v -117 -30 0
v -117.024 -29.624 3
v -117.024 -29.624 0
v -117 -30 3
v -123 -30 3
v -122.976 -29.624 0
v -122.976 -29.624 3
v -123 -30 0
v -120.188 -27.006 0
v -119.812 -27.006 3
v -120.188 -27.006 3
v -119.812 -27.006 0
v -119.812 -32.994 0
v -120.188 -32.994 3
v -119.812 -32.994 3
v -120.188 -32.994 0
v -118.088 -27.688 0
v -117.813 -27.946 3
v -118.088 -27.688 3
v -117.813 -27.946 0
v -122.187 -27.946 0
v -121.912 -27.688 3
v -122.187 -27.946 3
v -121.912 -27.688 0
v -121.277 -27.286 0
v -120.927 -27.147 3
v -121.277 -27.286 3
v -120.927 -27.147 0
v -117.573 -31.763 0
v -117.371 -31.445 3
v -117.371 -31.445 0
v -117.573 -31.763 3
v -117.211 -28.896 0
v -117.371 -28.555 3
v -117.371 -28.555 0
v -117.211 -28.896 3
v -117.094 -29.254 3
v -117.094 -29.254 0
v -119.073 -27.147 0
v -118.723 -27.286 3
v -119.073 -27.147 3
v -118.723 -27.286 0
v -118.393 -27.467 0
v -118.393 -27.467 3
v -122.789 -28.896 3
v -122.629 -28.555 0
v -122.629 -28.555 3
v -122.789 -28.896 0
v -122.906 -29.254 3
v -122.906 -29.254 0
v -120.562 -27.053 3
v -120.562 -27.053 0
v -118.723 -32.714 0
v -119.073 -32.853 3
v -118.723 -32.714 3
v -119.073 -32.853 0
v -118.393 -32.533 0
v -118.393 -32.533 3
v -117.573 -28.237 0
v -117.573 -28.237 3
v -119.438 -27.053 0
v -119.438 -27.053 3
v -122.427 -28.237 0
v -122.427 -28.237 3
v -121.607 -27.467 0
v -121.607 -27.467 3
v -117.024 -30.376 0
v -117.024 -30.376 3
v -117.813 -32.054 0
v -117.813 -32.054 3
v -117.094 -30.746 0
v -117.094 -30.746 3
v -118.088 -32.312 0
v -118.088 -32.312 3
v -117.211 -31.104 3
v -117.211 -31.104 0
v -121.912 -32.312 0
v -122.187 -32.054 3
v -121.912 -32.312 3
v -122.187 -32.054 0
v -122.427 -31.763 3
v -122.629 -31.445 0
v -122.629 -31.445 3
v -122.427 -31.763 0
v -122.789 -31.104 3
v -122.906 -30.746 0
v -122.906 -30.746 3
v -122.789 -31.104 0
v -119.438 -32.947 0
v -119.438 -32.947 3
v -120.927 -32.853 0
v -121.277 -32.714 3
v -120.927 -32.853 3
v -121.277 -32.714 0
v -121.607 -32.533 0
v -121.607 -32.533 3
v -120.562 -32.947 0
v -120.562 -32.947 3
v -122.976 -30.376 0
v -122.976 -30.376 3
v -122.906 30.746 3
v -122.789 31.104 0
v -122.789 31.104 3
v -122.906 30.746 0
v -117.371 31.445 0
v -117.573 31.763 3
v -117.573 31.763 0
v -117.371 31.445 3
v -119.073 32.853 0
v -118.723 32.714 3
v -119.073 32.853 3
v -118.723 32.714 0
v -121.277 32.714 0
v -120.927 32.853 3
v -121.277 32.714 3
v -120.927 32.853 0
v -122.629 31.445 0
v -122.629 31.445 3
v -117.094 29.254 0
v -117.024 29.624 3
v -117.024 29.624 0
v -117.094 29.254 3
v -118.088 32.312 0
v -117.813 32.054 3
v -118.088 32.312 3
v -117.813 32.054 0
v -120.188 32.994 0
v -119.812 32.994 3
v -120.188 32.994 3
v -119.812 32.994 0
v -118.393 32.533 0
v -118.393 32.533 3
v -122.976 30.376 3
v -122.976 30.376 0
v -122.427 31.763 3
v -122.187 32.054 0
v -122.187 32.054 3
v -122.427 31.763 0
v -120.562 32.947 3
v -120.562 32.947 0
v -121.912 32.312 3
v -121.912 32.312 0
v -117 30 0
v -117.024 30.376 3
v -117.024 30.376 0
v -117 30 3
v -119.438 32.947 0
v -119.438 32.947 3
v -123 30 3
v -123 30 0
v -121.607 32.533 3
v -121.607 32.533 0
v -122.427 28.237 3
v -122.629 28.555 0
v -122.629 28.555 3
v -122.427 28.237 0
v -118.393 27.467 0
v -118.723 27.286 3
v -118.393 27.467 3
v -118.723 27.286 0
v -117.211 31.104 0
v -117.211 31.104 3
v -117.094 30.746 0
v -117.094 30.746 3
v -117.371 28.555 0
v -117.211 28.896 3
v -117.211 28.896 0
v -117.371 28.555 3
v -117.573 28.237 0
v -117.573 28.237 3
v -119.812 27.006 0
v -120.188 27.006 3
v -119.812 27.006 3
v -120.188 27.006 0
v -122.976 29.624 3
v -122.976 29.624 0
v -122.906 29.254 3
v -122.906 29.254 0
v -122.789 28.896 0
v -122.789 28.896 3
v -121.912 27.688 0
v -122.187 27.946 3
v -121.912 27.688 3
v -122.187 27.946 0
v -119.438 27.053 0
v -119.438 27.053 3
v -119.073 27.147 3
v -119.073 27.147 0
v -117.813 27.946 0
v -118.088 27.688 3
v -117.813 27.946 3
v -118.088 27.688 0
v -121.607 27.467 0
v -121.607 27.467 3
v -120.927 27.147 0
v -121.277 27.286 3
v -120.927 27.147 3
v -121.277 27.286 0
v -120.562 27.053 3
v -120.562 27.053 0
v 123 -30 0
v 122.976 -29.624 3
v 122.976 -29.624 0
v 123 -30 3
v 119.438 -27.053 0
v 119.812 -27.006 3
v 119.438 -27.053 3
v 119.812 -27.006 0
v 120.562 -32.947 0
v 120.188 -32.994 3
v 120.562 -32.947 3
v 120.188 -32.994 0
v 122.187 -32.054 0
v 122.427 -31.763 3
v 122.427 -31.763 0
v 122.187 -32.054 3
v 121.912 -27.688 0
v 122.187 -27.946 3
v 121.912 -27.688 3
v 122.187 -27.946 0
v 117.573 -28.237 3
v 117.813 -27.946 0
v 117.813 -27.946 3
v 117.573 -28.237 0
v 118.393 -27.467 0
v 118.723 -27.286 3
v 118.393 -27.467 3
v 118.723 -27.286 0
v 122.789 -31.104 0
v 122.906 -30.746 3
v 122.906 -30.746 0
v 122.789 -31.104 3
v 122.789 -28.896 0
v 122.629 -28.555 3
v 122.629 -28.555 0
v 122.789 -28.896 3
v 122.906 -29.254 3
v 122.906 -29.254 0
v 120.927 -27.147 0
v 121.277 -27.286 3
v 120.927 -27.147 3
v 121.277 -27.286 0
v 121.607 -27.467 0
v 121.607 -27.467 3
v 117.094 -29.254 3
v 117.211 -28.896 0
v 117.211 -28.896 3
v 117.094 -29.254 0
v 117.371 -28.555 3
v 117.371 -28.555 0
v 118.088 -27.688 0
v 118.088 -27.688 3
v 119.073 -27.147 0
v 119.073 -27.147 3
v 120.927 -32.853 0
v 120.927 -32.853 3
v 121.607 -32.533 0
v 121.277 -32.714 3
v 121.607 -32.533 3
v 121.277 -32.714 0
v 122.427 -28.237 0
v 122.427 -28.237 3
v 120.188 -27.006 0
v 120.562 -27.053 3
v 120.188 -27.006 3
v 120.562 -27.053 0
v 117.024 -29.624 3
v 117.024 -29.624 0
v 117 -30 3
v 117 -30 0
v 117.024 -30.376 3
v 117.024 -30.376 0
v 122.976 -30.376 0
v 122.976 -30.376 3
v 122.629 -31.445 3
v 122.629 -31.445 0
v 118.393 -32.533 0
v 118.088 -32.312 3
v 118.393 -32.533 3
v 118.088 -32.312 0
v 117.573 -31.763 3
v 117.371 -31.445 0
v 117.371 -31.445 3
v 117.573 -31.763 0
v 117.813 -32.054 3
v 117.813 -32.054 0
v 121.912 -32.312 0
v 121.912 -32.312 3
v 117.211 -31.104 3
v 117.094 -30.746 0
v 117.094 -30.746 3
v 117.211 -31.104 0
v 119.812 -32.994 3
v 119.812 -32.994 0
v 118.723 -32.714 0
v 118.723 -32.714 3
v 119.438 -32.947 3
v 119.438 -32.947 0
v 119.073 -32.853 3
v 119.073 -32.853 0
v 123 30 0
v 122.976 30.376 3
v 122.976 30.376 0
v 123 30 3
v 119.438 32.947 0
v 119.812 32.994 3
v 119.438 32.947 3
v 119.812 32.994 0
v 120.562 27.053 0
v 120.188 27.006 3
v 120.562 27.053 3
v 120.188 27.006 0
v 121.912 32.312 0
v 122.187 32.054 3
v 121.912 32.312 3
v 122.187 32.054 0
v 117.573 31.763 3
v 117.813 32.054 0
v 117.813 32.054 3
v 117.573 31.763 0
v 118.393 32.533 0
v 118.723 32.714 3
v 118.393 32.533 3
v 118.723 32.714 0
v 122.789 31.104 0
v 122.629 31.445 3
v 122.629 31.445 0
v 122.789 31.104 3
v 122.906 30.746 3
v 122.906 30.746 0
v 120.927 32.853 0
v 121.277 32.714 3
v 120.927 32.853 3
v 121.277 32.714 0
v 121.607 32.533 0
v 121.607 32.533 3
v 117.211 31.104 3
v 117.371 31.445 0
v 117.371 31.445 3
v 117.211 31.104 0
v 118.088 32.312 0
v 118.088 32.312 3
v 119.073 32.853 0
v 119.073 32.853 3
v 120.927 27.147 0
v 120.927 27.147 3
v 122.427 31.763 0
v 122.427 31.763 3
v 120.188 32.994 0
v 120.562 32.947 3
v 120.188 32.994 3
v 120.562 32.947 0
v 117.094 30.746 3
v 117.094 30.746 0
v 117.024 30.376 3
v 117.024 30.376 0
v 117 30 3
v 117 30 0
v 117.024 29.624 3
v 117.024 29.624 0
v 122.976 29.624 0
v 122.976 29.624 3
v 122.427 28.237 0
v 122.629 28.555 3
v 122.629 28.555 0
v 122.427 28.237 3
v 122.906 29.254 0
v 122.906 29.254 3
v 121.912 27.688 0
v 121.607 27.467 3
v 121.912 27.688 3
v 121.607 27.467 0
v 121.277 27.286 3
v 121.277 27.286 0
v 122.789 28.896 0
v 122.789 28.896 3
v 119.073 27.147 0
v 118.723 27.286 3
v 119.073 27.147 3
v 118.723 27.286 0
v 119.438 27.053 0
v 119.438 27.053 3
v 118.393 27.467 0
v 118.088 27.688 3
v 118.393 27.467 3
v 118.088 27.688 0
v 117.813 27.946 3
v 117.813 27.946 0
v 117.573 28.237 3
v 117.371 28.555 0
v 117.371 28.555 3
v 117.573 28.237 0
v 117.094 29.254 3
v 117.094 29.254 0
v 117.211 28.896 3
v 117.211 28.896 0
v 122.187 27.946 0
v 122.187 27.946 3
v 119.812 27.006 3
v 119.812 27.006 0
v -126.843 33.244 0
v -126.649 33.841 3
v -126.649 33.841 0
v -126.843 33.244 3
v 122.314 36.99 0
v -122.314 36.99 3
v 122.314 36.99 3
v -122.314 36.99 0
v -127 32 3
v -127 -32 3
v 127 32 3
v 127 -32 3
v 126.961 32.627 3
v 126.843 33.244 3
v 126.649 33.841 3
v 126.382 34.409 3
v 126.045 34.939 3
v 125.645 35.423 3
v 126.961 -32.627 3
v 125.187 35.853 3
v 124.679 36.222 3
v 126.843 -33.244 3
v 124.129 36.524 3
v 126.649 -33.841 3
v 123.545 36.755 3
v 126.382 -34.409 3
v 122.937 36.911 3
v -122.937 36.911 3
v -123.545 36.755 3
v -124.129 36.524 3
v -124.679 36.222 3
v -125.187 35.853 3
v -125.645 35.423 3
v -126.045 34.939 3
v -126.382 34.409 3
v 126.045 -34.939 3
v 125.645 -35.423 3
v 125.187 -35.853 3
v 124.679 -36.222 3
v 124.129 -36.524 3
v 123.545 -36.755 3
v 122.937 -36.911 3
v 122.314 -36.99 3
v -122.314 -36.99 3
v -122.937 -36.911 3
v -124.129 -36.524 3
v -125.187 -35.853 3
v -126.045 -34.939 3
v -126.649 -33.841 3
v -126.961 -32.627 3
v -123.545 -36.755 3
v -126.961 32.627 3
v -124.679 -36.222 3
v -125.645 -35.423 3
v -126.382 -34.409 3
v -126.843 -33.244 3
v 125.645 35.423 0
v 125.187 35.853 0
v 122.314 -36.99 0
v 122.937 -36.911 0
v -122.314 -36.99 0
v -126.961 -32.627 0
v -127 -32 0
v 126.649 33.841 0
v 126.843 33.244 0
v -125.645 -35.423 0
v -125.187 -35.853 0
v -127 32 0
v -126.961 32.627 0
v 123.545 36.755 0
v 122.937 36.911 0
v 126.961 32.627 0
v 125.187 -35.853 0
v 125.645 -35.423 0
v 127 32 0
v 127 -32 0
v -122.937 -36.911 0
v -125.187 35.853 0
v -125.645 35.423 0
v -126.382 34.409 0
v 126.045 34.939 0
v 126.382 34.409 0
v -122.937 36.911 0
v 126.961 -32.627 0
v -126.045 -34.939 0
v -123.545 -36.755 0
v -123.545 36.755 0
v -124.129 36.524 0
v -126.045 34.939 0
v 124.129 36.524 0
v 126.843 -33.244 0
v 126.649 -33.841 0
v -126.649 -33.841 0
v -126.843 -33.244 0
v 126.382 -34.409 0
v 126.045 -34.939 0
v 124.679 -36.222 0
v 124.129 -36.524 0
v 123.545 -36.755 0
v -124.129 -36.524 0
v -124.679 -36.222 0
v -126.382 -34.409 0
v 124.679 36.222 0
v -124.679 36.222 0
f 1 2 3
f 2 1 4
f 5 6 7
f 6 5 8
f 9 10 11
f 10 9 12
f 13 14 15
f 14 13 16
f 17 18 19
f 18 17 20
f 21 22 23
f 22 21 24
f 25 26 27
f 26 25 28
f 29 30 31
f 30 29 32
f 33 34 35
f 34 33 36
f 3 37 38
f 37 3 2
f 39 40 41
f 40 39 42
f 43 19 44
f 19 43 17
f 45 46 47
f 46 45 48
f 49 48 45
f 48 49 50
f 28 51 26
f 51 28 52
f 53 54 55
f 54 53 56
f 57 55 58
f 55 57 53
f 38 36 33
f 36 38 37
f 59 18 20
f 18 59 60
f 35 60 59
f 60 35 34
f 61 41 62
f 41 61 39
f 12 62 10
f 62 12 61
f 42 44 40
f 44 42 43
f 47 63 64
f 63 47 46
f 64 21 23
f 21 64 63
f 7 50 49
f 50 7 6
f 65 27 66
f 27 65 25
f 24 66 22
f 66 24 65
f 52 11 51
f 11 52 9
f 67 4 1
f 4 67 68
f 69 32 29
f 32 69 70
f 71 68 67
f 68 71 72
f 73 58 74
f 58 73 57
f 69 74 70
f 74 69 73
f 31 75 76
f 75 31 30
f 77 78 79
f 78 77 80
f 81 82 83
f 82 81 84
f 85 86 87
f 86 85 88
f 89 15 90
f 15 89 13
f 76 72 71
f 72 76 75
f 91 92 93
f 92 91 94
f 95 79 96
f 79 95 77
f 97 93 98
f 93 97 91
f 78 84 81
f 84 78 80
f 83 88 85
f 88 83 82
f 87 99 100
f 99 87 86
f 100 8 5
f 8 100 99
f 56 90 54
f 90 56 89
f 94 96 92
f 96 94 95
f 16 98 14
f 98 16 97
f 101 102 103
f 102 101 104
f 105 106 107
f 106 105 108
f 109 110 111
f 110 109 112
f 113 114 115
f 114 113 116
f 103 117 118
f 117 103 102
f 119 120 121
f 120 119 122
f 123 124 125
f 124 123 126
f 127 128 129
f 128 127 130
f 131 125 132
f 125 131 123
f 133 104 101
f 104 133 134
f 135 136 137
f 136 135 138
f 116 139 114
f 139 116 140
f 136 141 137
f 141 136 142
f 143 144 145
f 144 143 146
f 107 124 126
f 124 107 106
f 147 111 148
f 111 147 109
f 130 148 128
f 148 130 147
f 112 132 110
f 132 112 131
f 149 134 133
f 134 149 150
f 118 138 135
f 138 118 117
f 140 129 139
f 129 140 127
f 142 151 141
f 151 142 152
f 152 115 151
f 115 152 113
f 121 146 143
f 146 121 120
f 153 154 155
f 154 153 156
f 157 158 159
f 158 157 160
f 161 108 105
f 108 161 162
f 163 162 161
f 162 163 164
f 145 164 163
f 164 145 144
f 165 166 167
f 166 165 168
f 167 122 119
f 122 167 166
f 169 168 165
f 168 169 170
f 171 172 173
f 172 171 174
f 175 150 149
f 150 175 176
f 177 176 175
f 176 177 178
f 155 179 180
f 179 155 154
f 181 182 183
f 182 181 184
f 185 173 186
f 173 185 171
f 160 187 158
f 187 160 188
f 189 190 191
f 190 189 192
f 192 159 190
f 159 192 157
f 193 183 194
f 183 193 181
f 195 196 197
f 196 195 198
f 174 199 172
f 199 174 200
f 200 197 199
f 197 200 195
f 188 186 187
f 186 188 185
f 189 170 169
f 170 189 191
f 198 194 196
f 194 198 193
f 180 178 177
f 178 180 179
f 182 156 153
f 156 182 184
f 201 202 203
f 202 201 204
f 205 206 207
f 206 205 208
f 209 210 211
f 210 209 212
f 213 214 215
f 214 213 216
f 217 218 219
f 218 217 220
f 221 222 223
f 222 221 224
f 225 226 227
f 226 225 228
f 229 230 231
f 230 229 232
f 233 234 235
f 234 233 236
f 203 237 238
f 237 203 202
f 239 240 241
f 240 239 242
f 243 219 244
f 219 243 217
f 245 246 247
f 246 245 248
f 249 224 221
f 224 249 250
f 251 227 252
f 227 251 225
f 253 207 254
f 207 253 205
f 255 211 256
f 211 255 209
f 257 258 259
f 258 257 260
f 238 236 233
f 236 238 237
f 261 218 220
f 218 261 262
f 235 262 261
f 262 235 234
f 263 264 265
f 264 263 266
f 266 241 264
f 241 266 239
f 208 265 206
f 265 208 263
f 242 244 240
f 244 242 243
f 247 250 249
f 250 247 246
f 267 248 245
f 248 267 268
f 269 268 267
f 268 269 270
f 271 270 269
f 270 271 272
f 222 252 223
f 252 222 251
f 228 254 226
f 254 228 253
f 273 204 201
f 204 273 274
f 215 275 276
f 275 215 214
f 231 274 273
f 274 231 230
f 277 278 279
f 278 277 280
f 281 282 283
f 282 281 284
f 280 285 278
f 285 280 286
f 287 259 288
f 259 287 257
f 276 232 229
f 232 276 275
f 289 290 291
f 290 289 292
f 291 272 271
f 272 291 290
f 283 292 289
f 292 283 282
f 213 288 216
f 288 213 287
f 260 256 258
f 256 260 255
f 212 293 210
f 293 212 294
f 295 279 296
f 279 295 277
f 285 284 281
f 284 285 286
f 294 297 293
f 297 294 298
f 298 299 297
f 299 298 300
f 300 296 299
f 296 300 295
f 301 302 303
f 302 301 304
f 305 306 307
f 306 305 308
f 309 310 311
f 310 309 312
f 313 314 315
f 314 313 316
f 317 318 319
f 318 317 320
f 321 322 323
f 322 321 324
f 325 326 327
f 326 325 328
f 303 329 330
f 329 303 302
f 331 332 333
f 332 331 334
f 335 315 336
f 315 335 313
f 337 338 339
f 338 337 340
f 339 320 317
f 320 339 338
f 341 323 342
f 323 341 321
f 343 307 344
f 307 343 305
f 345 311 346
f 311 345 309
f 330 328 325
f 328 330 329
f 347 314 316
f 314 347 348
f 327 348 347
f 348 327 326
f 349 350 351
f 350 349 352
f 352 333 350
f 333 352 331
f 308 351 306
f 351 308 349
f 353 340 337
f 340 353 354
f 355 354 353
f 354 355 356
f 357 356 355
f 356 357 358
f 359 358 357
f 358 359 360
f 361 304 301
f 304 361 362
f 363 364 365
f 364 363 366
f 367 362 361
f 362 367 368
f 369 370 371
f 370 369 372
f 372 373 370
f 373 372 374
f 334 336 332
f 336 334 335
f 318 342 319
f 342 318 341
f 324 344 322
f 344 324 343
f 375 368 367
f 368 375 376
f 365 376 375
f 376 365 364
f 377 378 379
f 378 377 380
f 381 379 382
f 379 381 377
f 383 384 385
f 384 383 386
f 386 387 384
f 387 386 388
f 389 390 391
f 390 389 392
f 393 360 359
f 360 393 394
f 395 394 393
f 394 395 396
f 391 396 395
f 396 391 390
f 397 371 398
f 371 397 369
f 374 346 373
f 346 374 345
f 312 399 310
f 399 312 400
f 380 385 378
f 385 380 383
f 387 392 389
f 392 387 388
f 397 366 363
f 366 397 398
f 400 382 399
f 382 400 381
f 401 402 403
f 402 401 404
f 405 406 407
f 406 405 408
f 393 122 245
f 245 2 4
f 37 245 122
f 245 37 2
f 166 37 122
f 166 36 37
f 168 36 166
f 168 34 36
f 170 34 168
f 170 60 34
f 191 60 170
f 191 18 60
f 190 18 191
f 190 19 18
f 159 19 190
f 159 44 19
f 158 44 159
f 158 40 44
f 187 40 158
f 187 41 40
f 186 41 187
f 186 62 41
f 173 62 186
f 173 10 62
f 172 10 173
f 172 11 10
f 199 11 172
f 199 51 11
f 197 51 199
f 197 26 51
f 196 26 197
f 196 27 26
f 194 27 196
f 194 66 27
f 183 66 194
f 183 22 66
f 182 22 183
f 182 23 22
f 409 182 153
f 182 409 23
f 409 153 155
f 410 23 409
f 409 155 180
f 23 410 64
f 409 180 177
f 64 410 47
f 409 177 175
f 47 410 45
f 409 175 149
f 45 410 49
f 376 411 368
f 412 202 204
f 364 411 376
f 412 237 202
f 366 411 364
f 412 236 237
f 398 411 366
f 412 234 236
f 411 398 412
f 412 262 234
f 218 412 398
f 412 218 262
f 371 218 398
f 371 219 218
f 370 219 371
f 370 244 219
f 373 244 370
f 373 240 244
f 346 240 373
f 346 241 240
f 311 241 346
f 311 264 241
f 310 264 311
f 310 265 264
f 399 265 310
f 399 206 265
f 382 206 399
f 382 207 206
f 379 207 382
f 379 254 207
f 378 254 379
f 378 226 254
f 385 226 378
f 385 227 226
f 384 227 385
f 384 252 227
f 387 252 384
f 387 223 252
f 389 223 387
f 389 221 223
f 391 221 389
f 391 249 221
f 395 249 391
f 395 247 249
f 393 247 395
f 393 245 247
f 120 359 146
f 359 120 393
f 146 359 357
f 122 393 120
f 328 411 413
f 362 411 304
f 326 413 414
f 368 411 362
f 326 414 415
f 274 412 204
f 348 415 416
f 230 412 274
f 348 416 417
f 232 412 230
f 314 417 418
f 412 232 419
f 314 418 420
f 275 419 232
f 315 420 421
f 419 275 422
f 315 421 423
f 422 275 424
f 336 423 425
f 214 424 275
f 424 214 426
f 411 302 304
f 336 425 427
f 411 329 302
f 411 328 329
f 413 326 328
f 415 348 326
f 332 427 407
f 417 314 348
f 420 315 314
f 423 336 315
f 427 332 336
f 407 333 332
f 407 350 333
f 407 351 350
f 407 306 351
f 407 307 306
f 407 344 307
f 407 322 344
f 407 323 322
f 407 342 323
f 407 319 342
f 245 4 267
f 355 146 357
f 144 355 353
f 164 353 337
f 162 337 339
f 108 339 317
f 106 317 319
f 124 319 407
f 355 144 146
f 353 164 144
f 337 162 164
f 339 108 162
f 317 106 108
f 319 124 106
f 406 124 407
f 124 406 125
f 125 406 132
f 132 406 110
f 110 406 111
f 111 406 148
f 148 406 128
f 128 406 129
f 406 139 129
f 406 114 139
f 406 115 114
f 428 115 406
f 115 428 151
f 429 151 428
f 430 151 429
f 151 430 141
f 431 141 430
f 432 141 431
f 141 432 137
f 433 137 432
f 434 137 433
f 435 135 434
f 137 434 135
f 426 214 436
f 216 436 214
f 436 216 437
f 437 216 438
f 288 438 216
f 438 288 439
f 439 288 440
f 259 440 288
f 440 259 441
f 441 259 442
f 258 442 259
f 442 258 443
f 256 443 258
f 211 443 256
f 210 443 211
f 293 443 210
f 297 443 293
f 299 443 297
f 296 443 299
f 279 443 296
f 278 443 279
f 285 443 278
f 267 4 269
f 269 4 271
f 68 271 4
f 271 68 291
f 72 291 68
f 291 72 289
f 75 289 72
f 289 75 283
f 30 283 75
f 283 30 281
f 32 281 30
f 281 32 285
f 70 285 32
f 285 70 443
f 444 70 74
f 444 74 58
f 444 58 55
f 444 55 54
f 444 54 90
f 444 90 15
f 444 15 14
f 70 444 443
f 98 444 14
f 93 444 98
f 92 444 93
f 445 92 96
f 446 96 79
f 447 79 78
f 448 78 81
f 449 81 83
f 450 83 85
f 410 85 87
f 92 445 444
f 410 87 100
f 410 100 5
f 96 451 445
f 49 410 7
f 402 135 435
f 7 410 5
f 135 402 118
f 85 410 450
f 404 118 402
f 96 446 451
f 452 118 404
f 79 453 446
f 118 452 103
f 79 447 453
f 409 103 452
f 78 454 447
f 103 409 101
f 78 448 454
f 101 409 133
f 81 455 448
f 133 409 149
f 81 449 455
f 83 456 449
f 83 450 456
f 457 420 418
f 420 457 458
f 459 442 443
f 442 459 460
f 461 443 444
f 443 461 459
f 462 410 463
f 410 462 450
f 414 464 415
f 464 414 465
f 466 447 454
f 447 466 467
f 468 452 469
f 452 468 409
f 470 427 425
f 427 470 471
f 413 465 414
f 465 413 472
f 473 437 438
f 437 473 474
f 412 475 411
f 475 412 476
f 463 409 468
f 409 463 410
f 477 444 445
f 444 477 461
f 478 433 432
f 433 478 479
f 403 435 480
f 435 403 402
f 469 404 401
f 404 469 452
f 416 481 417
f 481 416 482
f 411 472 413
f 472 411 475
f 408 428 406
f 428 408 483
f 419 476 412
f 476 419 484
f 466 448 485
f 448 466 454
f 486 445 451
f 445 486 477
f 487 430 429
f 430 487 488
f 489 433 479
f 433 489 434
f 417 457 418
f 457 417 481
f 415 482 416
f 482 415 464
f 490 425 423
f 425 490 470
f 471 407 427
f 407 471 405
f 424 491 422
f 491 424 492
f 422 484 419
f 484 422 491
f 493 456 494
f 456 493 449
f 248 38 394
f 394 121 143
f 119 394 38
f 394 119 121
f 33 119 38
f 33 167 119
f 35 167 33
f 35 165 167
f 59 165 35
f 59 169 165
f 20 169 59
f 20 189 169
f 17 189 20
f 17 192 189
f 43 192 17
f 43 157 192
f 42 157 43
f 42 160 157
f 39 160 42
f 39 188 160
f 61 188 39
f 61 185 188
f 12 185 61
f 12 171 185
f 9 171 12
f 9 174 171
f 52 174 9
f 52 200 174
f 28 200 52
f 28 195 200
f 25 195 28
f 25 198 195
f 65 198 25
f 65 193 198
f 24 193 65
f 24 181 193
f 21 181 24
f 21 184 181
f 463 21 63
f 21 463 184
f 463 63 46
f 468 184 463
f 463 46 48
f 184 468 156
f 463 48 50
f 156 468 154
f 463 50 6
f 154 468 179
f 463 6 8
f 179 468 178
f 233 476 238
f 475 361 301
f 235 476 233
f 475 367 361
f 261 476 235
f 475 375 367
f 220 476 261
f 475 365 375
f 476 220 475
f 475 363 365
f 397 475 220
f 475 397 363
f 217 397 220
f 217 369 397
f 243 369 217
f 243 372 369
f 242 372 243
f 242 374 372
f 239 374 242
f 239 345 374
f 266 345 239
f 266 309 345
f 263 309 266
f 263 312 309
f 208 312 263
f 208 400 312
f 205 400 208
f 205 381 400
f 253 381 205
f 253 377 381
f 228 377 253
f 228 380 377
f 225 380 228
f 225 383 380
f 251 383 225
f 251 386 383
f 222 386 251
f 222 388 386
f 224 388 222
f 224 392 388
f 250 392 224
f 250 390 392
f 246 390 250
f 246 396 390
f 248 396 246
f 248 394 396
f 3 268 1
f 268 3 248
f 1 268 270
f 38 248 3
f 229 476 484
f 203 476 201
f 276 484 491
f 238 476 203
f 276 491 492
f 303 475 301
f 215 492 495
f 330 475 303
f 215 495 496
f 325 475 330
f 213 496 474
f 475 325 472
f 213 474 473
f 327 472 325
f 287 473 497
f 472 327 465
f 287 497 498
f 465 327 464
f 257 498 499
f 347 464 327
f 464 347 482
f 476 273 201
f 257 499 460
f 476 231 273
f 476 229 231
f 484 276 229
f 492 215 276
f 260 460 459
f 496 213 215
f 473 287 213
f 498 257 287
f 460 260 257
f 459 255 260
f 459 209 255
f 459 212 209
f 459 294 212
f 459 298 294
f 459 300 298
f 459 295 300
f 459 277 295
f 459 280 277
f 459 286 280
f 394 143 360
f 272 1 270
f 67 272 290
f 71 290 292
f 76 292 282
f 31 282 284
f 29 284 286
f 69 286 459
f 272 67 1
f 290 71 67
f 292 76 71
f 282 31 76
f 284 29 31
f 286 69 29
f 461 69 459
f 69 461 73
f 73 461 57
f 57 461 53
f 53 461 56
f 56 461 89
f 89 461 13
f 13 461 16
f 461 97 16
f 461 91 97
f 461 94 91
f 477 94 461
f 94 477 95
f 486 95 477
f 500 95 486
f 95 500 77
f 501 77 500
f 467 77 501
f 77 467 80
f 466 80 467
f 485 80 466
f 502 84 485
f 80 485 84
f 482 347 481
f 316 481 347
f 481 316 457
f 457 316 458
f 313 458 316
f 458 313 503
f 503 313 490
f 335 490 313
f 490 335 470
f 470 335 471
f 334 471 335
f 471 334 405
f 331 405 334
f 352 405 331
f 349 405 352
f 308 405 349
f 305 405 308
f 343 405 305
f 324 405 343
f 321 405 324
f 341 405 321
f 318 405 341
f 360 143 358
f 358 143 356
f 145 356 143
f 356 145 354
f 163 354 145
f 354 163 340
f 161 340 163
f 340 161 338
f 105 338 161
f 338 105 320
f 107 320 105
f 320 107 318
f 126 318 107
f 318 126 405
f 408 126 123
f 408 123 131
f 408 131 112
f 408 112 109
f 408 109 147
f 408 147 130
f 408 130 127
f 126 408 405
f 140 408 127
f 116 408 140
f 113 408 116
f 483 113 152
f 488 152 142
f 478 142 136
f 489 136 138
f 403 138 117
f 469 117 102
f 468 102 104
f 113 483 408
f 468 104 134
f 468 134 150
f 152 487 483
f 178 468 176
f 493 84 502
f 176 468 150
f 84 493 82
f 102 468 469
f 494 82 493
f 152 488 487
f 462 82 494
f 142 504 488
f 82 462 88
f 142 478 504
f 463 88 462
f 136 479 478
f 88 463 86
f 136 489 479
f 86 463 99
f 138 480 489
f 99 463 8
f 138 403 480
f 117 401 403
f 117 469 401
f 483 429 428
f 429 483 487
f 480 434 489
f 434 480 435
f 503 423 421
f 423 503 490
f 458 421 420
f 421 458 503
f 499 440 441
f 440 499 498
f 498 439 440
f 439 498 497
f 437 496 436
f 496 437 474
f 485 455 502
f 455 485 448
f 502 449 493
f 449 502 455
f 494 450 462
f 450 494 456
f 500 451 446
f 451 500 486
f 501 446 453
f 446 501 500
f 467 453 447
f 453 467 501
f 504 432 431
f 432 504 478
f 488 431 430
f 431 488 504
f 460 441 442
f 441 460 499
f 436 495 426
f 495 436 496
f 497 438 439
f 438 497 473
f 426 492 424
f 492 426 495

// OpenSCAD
$fn = 50;


difference() {
	union() {
		hull() {
			translate(v = [-122.0000000000, 32.0000000000, 0]) {
				cylinder(h = 3, r = 5);
			}
			translate(v = [122.0000000000, 32.0000000000, 0]) {
				cylinder(h = 3, r = 5);
			}
			translate(v = [-122.0000000000, -32.0000000000, 0]) {
				cylinder(h = 3, r = 5);
			}
			translate(v = [122.0000000000, -32.0000000000, 0]) {
				cylinder(h = 3, r = 5);
			}
		}
	}
	union() {
		translate(v = [-120.0000000000, -30.0000000000, -100.0000000000]) {
			cylinder(h = 200, r = 3.0000000000);
		}
		translate(v = [-120.0000000000, 30.0000000000, -100.0000000000]) {
			cylinder(h = 200, r = 3.0000000000);
		}
		translate(v = [120.0000000000, -30.0000000000, -100.0000000000]) {
			cylinder(h = 200, r = 3.0000000000);
		}
		translate(v = [120.0000000000, 30.0000000000, -100.0000000000]) {
			cylinder(h = 200, r = 3.0000000000);
		}
	}
}
